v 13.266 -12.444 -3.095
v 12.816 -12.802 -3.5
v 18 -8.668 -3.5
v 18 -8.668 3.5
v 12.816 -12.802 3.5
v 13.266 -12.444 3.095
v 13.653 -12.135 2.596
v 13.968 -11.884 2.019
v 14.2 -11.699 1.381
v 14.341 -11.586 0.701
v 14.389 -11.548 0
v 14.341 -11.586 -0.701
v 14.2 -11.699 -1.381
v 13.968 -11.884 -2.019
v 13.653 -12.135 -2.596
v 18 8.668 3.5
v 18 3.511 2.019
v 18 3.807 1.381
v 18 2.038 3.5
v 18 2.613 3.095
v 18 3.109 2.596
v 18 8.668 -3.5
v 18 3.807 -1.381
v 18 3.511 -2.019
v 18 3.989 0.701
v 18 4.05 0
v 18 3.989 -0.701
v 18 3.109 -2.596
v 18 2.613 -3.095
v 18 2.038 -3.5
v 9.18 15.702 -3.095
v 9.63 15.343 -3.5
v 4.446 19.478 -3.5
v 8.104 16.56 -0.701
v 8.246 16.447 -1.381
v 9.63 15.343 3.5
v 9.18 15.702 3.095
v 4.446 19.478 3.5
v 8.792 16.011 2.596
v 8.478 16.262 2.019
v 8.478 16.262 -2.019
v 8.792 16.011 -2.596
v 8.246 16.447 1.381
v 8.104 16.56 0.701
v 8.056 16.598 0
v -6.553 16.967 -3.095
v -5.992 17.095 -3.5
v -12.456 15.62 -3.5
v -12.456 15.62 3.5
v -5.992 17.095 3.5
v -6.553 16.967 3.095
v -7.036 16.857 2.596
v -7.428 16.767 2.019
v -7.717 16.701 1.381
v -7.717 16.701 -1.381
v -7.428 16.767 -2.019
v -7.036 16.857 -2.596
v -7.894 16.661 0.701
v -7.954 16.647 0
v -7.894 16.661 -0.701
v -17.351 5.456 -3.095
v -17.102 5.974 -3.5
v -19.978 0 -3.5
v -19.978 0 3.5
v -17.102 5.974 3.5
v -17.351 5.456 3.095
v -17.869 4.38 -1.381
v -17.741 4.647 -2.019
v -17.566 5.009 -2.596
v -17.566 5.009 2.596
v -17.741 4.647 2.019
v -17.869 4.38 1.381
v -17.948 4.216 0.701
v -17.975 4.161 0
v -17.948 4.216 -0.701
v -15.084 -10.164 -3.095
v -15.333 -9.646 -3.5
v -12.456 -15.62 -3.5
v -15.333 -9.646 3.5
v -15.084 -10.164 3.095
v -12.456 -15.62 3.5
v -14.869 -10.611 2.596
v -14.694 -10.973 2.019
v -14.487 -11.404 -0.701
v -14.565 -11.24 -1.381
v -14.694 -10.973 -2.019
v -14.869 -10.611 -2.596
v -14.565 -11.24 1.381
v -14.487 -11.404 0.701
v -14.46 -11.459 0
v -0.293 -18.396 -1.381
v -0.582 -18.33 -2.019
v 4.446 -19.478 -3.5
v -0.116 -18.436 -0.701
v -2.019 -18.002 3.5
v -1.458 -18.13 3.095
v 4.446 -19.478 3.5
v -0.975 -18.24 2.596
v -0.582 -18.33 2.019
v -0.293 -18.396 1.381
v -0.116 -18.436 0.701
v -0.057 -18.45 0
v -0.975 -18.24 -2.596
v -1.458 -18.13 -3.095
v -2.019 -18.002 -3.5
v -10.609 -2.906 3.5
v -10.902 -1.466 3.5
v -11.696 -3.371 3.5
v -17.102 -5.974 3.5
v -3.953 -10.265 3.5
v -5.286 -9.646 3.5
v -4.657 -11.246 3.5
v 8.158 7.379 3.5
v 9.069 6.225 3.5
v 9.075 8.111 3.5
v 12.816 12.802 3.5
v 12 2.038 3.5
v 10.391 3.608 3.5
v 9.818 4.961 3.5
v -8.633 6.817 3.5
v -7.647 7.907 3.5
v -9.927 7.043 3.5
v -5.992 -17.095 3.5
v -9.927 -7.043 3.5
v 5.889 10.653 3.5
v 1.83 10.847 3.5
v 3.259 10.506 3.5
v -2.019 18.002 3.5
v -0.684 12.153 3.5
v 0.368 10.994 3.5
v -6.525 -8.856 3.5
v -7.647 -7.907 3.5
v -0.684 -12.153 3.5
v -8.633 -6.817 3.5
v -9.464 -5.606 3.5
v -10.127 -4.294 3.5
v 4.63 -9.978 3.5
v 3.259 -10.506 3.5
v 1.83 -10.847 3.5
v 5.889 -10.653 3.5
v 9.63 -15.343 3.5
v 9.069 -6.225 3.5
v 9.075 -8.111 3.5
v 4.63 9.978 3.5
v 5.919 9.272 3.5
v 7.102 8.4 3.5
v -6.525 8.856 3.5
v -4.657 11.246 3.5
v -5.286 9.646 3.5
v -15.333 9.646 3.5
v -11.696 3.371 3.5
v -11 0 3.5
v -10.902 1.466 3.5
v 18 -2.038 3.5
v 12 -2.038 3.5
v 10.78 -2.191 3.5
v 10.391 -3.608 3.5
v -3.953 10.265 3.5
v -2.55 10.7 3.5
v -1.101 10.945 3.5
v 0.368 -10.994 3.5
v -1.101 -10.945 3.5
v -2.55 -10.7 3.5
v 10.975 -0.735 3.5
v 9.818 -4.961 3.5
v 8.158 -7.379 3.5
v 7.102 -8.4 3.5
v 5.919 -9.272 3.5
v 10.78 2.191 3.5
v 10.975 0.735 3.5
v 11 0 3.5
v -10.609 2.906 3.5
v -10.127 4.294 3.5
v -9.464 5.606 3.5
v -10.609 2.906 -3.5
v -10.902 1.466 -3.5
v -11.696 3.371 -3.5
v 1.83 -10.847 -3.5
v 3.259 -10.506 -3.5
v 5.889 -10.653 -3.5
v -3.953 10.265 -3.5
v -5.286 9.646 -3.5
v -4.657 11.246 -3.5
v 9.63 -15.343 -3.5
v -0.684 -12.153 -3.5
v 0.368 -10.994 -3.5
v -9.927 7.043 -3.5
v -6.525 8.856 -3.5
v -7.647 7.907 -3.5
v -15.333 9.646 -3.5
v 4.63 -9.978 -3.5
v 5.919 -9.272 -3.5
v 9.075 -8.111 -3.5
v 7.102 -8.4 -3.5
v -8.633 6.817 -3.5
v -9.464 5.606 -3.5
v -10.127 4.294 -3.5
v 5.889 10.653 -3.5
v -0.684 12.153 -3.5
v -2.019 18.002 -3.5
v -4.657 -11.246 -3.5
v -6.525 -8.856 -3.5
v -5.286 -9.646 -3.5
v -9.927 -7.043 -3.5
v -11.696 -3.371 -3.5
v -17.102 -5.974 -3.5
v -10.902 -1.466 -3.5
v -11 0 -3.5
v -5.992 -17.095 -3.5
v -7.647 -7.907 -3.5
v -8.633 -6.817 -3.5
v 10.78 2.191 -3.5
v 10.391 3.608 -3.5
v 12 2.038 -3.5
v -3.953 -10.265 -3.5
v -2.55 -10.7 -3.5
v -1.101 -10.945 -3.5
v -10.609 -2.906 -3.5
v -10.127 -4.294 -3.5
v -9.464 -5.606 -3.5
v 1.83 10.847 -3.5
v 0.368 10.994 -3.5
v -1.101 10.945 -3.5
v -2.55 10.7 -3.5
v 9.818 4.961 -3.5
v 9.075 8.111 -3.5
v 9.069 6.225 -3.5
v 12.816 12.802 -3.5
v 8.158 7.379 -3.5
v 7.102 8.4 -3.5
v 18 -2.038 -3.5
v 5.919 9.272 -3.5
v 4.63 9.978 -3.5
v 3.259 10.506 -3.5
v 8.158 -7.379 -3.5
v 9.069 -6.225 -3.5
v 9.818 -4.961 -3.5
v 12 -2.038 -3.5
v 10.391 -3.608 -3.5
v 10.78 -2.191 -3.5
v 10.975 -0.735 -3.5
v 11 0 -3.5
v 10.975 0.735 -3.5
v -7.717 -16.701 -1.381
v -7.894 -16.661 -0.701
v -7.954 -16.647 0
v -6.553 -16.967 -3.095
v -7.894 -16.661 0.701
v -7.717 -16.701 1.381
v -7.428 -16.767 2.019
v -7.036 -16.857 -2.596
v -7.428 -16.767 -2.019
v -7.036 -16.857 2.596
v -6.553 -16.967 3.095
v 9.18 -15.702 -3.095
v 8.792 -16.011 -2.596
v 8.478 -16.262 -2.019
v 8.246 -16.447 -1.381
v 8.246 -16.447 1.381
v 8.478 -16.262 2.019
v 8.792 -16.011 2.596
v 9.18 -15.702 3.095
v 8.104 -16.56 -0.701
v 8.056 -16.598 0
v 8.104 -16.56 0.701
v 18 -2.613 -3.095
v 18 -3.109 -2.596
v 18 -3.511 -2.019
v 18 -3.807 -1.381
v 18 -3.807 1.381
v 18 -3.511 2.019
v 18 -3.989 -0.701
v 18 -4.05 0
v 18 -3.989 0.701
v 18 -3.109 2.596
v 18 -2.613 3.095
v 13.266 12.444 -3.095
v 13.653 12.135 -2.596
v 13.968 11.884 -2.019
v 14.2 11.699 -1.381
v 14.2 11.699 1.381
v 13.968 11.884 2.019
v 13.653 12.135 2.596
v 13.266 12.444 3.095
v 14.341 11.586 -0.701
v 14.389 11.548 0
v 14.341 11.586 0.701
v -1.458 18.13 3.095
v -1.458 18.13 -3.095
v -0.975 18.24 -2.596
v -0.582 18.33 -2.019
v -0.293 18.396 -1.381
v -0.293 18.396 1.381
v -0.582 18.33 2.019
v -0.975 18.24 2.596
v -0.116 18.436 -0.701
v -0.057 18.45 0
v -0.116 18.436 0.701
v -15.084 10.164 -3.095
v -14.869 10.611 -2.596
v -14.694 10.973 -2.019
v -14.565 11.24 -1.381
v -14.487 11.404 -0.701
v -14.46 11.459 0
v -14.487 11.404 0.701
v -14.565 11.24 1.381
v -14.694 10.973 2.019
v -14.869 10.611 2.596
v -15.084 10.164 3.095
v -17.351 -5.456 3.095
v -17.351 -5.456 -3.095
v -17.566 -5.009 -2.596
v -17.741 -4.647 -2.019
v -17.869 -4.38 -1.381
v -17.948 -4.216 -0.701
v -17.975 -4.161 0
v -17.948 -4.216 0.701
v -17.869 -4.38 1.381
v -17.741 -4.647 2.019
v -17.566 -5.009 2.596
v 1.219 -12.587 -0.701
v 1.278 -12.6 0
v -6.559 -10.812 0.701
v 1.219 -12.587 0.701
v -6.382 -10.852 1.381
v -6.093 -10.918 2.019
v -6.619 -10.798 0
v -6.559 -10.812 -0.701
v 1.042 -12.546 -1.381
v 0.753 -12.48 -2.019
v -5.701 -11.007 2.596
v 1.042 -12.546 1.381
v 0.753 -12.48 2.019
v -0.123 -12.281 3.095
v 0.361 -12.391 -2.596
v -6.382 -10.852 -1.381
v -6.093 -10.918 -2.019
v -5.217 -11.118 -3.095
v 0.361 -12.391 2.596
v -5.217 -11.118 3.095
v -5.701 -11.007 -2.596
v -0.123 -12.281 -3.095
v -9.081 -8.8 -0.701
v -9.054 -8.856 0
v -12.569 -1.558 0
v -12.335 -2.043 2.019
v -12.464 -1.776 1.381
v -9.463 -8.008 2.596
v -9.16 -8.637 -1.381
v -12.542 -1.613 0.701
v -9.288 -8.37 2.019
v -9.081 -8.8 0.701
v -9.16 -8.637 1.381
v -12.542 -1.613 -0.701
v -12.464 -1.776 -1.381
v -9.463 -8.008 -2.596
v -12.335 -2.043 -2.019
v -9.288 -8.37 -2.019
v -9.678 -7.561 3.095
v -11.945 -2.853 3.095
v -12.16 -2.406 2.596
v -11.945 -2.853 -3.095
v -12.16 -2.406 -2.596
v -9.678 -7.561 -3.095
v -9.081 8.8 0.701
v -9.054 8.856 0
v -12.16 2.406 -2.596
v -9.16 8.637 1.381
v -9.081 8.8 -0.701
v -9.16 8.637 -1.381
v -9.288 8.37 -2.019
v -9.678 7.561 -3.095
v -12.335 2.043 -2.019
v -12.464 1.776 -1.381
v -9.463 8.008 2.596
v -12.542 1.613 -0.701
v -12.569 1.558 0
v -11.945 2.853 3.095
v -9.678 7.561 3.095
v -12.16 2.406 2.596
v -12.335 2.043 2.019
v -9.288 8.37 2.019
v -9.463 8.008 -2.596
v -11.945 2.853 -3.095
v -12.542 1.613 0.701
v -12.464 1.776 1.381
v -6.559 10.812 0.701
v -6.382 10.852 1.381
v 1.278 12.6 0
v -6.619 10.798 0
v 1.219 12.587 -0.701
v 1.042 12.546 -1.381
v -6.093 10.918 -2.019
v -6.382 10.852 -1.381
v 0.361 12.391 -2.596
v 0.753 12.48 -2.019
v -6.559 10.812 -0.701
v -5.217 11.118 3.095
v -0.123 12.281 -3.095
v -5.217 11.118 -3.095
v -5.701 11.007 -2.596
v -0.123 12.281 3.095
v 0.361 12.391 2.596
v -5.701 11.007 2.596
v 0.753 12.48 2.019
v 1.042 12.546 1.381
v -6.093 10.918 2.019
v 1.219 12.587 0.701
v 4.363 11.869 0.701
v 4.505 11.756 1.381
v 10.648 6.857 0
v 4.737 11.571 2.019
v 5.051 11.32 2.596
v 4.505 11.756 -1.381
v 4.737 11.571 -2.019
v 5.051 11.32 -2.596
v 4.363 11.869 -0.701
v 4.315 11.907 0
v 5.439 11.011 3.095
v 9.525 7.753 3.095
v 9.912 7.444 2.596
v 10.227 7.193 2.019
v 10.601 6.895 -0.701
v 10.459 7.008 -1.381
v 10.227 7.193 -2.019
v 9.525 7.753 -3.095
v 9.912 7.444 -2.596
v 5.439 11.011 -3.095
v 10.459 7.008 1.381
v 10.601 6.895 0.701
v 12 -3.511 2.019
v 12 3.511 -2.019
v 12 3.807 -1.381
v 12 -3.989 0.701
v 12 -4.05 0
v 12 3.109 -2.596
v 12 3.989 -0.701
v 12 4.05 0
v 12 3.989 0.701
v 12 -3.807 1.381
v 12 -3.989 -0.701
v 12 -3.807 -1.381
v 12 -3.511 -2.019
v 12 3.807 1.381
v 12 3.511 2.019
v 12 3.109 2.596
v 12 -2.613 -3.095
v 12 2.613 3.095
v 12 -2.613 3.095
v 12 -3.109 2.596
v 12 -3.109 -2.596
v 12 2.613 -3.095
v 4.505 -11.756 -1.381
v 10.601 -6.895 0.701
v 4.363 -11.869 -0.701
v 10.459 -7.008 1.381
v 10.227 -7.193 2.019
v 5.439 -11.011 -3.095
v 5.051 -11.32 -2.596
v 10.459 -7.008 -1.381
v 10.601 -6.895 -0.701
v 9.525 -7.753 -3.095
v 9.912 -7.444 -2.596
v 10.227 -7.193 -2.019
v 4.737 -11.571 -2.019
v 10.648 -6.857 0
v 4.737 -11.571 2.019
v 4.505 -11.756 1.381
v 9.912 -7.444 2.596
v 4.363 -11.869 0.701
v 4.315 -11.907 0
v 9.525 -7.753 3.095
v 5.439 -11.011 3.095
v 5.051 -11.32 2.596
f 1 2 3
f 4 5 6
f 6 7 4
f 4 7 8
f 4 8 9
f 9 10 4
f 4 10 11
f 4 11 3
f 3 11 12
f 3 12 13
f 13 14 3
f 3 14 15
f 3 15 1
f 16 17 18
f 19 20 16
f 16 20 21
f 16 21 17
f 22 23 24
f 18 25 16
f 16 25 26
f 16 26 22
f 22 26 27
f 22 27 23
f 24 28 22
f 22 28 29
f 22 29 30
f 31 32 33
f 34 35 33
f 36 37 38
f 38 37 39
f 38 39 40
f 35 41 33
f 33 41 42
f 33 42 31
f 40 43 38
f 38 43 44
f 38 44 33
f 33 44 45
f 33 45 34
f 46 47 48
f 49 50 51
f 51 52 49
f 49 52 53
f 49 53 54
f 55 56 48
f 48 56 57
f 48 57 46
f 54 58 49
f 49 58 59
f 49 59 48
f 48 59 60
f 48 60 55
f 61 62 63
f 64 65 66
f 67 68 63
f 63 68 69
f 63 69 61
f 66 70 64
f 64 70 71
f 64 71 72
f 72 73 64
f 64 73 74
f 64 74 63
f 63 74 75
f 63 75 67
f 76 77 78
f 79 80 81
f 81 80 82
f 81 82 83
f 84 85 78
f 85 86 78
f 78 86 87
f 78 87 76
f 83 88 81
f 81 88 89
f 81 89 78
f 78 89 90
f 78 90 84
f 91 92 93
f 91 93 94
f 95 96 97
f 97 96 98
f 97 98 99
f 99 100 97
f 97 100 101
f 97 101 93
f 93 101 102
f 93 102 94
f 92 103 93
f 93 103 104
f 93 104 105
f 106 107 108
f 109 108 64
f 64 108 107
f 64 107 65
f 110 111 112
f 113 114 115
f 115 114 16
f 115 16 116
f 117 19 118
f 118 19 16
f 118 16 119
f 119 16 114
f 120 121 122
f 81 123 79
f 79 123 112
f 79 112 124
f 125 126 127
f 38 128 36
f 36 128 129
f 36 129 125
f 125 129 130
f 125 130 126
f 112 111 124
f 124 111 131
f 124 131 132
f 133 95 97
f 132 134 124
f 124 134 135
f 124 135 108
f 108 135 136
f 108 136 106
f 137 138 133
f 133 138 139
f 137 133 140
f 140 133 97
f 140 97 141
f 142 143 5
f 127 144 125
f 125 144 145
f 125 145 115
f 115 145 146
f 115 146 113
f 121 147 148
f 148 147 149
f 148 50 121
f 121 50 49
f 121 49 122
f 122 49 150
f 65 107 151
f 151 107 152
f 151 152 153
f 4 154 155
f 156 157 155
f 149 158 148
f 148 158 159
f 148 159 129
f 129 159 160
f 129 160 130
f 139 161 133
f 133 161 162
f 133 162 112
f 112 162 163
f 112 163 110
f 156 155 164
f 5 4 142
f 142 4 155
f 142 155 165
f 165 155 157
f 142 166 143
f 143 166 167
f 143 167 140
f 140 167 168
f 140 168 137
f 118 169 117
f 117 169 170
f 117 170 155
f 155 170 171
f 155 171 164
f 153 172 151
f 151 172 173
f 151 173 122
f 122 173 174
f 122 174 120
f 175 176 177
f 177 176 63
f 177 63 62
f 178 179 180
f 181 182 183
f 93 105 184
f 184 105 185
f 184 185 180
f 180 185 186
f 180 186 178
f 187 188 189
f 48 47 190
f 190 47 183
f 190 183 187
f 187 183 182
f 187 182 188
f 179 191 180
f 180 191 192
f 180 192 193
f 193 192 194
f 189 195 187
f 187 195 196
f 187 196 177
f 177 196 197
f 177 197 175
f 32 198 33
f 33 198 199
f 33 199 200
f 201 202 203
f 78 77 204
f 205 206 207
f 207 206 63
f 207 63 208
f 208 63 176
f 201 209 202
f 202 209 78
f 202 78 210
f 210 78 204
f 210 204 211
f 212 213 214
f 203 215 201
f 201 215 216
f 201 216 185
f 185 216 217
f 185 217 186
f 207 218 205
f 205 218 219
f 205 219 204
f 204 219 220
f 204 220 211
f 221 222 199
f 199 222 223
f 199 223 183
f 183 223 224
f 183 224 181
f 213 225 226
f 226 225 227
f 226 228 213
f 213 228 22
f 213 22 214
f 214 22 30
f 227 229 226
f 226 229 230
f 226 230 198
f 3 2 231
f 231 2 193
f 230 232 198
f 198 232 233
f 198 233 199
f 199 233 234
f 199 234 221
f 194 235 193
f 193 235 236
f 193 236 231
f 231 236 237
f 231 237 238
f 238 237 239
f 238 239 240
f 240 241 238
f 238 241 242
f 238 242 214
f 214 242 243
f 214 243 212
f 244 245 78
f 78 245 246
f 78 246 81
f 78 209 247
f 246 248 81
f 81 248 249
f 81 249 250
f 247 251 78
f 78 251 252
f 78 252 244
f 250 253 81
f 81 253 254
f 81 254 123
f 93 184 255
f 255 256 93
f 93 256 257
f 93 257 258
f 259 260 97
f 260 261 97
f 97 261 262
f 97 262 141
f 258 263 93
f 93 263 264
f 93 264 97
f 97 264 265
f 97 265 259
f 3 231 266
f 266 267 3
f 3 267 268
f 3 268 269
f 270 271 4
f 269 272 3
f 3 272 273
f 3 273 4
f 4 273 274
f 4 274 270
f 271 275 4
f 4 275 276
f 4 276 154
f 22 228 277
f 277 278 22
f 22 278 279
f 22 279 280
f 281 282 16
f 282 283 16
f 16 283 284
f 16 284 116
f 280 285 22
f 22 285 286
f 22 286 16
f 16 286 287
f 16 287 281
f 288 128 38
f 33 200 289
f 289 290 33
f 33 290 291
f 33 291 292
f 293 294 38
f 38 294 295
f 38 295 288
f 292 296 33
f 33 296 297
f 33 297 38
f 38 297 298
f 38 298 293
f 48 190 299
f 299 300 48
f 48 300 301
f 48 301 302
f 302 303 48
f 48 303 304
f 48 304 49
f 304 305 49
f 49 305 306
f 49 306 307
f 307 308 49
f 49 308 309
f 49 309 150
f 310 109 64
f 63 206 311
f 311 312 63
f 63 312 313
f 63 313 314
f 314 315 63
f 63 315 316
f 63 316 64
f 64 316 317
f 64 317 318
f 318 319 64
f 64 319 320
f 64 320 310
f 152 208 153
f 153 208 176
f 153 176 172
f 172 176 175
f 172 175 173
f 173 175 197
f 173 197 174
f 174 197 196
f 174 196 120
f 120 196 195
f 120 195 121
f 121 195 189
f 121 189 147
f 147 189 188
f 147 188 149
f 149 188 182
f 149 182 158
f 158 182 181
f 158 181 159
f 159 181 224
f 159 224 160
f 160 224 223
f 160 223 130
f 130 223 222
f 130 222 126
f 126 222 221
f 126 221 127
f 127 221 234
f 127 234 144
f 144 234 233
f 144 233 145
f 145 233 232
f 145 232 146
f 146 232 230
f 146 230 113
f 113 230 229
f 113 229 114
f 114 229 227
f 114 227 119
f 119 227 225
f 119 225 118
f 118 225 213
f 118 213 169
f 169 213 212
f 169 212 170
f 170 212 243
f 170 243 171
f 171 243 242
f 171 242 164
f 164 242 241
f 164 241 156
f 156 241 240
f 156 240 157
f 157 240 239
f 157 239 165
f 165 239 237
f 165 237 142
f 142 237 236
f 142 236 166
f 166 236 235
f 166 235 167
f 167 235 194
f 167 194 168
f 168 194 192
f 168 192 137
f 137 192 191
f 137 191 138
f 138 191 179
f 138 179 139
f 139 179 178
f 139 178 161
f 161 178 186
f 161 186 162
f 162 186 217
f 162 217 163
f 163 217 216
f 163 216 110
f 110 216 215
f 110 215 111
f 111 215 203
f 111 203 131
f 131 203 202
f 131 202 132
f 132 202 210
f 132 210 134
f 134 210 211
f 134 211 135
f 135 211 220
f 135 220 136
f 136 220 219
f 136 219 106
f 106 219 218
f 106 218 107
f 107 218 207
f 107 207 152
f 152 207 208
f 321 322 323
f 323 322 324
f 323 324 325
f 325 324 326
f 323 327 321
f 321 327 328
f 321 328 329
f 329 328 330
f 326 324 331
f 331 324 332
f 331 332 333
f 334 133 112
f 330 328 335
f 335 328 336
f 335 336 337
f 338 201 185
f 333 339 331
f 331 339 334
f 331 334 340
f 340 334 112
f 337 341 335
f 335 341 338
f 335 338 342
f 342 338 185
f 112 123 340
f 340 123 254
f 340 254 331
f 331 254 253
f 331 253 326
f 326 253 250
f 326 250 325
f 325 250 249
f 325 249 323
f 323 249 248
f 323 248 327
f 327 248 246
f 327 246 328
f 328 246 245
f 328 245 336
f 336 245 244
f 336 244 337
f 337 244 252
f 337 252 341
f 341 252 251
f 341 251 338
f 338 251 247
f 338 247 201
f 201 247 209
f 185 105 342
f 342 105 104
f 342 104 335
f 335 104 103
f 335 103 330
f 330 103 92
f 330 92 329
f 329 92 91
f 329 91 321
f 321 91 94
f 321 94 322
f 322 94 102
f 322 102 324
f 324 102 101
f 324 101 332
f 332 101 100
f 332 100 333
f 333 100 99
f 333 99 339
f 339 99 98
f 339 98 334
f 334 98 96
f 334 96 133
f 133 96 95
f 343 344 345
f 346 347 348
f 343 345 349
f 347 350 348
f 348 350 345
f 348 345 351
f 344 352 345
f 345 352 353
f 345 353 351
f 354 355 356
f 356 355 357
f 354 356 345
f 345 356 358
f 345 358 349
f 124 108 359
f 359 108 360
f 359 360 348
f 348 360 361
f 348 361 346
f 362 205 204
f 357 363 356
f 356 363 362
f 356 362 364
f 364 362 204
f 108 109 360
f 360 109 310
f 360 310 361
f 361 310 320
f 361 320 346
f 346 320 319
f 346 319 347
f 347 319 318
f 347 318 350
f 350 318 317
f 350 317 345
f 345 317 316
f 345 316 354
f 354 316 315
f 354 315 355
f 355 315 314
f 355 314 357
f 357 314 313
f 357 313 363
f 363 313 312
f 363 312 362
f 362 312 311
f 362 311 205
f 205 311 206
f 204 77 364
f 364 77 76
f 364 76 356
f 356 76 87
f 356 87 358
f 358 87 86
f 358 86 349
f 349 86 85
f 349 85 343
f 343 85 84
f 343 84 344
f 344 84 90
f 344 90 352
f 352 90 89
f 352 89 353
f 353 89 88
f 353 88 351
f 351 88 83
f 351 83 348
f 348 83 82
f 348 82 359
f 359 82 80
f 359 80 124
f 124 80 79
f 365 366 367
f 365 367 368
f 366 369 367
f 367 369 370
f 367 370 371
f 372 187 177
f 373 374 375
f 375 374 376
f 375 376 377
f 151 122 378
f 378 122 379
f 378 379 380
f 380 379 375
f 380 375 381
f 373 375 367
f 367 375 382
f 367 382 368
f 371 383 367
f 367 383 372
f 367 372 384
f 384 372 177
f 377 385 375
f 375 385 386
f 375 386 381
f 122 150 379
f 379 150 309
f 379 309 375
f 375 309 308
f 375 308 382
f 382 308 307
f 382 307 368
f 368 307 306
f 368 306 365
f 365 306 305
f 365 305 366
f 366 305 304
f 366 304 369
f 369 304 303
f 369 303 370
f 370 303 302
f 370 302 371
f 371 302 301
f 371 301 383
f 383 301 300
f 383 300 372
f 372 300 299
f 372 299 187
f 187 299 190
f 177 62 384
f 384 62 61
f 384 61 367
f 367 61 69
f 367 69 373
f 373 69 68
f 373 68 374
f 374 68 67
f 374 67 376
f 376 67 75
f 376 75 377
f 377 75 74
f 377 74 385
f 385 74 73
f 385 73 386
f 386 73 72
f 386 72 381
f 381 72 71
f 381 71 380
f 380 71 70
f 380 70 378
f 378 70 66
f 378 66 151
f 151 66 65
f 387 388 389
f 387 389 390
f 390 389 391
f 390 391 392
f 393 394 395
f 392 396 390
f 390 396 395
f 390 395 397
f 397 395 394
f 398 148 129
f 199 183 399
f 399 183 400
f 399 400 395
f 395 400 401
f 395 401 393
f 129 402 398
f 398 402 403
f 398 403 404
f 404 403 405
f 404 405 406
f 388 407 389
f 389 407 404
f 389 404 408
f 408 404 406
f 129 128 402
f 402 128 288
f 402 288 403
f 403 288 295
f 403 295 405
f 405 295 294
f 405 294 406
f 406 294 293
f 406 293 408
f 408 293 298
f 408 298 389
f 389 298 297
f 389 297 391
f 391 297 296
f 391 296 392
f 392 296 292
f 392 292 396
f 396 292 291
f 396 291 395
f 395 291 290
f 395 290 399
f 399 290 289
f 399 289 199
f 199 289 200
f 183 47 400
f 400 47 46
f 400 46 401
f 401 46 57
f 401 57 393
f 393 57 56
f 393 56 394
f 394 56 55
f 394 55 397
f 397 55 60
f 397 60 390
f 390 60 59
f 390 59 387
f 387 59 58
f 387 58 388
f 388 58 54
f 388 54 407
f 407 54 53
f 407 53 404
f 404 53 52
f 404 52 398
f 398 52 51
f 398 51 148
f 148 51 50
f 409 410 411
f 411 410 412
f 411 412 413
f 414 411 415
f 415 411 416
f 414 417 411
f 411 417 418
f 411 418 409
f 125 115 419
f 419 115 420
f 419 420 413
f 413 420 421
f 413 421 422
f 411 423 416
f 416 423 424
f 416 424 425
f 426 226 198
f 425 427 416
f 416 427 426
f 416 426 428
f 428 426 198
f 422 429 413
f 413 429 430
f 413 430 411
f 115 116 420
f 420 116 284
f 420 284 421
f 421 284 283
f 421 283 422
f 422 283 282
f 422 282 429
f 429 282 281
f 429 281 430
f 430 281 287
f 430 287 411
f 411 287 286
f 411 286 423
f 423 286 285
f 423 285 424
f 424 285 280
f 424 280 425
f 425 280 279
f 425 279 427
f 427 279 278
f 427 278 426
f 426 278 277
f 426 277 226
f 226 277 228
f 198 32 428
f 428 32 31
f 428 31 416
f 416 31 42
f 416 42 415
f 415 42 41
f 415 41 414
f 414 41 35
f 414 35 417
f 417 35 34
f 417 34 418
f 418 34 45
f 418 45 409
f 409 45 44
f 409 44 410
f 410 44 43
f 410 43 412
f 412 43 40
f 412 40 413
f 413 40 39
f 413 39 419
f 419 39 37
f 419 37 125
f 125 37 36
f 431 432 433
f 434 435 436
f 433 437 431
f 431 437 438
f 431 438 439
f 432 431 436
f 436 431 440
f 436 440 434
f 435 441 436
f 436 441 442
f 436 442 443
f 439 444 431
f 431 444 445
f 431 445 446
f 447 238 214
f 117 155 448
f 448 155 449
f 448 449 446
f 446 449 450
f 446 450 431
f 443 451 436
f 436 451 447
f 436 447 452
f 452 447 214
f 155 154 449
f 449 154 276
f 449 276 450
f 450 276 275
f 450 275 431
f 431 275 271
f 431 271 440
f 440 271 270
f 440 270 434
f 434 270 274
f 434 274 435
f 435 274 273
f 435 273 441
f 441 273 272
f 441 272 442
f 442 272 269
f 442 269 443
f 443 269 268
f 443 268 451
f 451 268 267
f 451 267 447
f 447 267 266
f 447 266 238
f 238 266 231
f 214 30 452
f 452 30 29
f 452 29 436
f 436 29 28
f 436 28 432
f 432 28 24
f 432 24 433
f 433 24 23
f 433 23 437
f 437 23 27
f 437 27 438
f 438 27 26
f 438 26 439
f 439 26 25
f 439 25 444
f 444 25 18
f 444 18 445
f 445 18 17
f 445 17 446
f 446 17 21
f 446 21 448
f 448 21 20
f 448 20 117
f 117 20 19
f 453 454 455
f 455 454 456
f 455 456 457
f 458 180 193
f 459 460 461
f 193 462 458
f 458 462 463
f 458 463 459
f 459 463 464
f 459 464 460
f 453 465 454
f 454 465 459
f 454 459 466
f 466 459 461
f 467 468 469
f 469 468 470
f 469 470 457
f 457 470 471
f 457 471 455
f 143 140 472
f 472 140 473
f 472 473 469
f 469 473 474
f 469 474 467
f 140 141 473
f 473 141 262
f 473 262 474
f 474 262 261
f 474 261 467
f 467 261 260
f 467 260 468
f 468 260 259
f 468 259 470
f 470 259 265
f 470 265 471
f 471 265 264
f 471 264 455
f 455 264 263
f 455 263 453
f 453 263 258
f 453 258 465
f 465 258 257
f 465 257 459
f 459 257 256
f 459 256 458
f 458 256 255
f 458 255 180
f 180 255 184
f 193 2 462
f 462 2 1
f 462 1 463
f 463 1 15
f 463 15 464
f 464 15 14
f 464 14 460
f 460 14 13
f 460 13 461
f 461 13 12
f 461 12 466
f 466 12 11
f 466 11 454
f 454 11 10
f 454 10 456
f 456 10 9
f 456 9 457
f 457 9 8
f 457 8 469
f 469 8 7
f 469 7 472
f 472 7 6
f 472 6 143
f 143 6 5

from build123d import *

# Parameters (mm, degrees)
SKETCH1_R           = 11
BOSS_EXTRUDE1_DEPTH = 3.5
SKETCH2_R           = 4.05
CUT_EXTRUDE3_DEPTH  = 6
CIRPATTERN1_COUNT   = 7


with BuildPart() as part:
    # Sketch1 → Boss-Extrude1 (new, symmetric)
    with BuildSketch(Plane.XY):
        Polygon((-19.978492755, 0), (-12.456386489, -15.619814608), (4.445632867, -19.47759023), (18, -8.668343139), (18, 8.668343139), (4.445632867, 19.47759023), (-12.456386489, 15.619814608), align=None)
        Circle(SKETCH1_R, mode=Mode.SUBTRACT)
    extrude(amount=BOSS_EXTRUDE1_DEPTH, both=True)

    # Sketch2 → Cut-Extrude3 (cut)
    with BuildSketch(Plane(origin=(0.058998969, -18.476369669, 0), x_dir=(-0.9749279121818237, 0.22252093395631425, 0), z_dir=(-0.22252093395631425, -0.9749279121818237, 0))):
        with Locations((4.168898776, 0)):
            Circle(SKETCH2_R)
    cut_extrude3 = extrude(amount=-CUT_EXTRUDE3_DEPTH, mode=Mode.SUBTRACT)

    # CirPattern1: Cut-Extrude3 ×7 about axis
    cirpattern1_axis = Axis((0, 0, 3.5), (0, 0, 1))
    for i in range(1, CIRPATTERN1_COUNT):
        add(cut_extrude3.rotate(cirpattern1_axis, i * 360 / CIRPATTERN1_COUNT), mode=Mode.SUBTRACT)


solid = part.part
